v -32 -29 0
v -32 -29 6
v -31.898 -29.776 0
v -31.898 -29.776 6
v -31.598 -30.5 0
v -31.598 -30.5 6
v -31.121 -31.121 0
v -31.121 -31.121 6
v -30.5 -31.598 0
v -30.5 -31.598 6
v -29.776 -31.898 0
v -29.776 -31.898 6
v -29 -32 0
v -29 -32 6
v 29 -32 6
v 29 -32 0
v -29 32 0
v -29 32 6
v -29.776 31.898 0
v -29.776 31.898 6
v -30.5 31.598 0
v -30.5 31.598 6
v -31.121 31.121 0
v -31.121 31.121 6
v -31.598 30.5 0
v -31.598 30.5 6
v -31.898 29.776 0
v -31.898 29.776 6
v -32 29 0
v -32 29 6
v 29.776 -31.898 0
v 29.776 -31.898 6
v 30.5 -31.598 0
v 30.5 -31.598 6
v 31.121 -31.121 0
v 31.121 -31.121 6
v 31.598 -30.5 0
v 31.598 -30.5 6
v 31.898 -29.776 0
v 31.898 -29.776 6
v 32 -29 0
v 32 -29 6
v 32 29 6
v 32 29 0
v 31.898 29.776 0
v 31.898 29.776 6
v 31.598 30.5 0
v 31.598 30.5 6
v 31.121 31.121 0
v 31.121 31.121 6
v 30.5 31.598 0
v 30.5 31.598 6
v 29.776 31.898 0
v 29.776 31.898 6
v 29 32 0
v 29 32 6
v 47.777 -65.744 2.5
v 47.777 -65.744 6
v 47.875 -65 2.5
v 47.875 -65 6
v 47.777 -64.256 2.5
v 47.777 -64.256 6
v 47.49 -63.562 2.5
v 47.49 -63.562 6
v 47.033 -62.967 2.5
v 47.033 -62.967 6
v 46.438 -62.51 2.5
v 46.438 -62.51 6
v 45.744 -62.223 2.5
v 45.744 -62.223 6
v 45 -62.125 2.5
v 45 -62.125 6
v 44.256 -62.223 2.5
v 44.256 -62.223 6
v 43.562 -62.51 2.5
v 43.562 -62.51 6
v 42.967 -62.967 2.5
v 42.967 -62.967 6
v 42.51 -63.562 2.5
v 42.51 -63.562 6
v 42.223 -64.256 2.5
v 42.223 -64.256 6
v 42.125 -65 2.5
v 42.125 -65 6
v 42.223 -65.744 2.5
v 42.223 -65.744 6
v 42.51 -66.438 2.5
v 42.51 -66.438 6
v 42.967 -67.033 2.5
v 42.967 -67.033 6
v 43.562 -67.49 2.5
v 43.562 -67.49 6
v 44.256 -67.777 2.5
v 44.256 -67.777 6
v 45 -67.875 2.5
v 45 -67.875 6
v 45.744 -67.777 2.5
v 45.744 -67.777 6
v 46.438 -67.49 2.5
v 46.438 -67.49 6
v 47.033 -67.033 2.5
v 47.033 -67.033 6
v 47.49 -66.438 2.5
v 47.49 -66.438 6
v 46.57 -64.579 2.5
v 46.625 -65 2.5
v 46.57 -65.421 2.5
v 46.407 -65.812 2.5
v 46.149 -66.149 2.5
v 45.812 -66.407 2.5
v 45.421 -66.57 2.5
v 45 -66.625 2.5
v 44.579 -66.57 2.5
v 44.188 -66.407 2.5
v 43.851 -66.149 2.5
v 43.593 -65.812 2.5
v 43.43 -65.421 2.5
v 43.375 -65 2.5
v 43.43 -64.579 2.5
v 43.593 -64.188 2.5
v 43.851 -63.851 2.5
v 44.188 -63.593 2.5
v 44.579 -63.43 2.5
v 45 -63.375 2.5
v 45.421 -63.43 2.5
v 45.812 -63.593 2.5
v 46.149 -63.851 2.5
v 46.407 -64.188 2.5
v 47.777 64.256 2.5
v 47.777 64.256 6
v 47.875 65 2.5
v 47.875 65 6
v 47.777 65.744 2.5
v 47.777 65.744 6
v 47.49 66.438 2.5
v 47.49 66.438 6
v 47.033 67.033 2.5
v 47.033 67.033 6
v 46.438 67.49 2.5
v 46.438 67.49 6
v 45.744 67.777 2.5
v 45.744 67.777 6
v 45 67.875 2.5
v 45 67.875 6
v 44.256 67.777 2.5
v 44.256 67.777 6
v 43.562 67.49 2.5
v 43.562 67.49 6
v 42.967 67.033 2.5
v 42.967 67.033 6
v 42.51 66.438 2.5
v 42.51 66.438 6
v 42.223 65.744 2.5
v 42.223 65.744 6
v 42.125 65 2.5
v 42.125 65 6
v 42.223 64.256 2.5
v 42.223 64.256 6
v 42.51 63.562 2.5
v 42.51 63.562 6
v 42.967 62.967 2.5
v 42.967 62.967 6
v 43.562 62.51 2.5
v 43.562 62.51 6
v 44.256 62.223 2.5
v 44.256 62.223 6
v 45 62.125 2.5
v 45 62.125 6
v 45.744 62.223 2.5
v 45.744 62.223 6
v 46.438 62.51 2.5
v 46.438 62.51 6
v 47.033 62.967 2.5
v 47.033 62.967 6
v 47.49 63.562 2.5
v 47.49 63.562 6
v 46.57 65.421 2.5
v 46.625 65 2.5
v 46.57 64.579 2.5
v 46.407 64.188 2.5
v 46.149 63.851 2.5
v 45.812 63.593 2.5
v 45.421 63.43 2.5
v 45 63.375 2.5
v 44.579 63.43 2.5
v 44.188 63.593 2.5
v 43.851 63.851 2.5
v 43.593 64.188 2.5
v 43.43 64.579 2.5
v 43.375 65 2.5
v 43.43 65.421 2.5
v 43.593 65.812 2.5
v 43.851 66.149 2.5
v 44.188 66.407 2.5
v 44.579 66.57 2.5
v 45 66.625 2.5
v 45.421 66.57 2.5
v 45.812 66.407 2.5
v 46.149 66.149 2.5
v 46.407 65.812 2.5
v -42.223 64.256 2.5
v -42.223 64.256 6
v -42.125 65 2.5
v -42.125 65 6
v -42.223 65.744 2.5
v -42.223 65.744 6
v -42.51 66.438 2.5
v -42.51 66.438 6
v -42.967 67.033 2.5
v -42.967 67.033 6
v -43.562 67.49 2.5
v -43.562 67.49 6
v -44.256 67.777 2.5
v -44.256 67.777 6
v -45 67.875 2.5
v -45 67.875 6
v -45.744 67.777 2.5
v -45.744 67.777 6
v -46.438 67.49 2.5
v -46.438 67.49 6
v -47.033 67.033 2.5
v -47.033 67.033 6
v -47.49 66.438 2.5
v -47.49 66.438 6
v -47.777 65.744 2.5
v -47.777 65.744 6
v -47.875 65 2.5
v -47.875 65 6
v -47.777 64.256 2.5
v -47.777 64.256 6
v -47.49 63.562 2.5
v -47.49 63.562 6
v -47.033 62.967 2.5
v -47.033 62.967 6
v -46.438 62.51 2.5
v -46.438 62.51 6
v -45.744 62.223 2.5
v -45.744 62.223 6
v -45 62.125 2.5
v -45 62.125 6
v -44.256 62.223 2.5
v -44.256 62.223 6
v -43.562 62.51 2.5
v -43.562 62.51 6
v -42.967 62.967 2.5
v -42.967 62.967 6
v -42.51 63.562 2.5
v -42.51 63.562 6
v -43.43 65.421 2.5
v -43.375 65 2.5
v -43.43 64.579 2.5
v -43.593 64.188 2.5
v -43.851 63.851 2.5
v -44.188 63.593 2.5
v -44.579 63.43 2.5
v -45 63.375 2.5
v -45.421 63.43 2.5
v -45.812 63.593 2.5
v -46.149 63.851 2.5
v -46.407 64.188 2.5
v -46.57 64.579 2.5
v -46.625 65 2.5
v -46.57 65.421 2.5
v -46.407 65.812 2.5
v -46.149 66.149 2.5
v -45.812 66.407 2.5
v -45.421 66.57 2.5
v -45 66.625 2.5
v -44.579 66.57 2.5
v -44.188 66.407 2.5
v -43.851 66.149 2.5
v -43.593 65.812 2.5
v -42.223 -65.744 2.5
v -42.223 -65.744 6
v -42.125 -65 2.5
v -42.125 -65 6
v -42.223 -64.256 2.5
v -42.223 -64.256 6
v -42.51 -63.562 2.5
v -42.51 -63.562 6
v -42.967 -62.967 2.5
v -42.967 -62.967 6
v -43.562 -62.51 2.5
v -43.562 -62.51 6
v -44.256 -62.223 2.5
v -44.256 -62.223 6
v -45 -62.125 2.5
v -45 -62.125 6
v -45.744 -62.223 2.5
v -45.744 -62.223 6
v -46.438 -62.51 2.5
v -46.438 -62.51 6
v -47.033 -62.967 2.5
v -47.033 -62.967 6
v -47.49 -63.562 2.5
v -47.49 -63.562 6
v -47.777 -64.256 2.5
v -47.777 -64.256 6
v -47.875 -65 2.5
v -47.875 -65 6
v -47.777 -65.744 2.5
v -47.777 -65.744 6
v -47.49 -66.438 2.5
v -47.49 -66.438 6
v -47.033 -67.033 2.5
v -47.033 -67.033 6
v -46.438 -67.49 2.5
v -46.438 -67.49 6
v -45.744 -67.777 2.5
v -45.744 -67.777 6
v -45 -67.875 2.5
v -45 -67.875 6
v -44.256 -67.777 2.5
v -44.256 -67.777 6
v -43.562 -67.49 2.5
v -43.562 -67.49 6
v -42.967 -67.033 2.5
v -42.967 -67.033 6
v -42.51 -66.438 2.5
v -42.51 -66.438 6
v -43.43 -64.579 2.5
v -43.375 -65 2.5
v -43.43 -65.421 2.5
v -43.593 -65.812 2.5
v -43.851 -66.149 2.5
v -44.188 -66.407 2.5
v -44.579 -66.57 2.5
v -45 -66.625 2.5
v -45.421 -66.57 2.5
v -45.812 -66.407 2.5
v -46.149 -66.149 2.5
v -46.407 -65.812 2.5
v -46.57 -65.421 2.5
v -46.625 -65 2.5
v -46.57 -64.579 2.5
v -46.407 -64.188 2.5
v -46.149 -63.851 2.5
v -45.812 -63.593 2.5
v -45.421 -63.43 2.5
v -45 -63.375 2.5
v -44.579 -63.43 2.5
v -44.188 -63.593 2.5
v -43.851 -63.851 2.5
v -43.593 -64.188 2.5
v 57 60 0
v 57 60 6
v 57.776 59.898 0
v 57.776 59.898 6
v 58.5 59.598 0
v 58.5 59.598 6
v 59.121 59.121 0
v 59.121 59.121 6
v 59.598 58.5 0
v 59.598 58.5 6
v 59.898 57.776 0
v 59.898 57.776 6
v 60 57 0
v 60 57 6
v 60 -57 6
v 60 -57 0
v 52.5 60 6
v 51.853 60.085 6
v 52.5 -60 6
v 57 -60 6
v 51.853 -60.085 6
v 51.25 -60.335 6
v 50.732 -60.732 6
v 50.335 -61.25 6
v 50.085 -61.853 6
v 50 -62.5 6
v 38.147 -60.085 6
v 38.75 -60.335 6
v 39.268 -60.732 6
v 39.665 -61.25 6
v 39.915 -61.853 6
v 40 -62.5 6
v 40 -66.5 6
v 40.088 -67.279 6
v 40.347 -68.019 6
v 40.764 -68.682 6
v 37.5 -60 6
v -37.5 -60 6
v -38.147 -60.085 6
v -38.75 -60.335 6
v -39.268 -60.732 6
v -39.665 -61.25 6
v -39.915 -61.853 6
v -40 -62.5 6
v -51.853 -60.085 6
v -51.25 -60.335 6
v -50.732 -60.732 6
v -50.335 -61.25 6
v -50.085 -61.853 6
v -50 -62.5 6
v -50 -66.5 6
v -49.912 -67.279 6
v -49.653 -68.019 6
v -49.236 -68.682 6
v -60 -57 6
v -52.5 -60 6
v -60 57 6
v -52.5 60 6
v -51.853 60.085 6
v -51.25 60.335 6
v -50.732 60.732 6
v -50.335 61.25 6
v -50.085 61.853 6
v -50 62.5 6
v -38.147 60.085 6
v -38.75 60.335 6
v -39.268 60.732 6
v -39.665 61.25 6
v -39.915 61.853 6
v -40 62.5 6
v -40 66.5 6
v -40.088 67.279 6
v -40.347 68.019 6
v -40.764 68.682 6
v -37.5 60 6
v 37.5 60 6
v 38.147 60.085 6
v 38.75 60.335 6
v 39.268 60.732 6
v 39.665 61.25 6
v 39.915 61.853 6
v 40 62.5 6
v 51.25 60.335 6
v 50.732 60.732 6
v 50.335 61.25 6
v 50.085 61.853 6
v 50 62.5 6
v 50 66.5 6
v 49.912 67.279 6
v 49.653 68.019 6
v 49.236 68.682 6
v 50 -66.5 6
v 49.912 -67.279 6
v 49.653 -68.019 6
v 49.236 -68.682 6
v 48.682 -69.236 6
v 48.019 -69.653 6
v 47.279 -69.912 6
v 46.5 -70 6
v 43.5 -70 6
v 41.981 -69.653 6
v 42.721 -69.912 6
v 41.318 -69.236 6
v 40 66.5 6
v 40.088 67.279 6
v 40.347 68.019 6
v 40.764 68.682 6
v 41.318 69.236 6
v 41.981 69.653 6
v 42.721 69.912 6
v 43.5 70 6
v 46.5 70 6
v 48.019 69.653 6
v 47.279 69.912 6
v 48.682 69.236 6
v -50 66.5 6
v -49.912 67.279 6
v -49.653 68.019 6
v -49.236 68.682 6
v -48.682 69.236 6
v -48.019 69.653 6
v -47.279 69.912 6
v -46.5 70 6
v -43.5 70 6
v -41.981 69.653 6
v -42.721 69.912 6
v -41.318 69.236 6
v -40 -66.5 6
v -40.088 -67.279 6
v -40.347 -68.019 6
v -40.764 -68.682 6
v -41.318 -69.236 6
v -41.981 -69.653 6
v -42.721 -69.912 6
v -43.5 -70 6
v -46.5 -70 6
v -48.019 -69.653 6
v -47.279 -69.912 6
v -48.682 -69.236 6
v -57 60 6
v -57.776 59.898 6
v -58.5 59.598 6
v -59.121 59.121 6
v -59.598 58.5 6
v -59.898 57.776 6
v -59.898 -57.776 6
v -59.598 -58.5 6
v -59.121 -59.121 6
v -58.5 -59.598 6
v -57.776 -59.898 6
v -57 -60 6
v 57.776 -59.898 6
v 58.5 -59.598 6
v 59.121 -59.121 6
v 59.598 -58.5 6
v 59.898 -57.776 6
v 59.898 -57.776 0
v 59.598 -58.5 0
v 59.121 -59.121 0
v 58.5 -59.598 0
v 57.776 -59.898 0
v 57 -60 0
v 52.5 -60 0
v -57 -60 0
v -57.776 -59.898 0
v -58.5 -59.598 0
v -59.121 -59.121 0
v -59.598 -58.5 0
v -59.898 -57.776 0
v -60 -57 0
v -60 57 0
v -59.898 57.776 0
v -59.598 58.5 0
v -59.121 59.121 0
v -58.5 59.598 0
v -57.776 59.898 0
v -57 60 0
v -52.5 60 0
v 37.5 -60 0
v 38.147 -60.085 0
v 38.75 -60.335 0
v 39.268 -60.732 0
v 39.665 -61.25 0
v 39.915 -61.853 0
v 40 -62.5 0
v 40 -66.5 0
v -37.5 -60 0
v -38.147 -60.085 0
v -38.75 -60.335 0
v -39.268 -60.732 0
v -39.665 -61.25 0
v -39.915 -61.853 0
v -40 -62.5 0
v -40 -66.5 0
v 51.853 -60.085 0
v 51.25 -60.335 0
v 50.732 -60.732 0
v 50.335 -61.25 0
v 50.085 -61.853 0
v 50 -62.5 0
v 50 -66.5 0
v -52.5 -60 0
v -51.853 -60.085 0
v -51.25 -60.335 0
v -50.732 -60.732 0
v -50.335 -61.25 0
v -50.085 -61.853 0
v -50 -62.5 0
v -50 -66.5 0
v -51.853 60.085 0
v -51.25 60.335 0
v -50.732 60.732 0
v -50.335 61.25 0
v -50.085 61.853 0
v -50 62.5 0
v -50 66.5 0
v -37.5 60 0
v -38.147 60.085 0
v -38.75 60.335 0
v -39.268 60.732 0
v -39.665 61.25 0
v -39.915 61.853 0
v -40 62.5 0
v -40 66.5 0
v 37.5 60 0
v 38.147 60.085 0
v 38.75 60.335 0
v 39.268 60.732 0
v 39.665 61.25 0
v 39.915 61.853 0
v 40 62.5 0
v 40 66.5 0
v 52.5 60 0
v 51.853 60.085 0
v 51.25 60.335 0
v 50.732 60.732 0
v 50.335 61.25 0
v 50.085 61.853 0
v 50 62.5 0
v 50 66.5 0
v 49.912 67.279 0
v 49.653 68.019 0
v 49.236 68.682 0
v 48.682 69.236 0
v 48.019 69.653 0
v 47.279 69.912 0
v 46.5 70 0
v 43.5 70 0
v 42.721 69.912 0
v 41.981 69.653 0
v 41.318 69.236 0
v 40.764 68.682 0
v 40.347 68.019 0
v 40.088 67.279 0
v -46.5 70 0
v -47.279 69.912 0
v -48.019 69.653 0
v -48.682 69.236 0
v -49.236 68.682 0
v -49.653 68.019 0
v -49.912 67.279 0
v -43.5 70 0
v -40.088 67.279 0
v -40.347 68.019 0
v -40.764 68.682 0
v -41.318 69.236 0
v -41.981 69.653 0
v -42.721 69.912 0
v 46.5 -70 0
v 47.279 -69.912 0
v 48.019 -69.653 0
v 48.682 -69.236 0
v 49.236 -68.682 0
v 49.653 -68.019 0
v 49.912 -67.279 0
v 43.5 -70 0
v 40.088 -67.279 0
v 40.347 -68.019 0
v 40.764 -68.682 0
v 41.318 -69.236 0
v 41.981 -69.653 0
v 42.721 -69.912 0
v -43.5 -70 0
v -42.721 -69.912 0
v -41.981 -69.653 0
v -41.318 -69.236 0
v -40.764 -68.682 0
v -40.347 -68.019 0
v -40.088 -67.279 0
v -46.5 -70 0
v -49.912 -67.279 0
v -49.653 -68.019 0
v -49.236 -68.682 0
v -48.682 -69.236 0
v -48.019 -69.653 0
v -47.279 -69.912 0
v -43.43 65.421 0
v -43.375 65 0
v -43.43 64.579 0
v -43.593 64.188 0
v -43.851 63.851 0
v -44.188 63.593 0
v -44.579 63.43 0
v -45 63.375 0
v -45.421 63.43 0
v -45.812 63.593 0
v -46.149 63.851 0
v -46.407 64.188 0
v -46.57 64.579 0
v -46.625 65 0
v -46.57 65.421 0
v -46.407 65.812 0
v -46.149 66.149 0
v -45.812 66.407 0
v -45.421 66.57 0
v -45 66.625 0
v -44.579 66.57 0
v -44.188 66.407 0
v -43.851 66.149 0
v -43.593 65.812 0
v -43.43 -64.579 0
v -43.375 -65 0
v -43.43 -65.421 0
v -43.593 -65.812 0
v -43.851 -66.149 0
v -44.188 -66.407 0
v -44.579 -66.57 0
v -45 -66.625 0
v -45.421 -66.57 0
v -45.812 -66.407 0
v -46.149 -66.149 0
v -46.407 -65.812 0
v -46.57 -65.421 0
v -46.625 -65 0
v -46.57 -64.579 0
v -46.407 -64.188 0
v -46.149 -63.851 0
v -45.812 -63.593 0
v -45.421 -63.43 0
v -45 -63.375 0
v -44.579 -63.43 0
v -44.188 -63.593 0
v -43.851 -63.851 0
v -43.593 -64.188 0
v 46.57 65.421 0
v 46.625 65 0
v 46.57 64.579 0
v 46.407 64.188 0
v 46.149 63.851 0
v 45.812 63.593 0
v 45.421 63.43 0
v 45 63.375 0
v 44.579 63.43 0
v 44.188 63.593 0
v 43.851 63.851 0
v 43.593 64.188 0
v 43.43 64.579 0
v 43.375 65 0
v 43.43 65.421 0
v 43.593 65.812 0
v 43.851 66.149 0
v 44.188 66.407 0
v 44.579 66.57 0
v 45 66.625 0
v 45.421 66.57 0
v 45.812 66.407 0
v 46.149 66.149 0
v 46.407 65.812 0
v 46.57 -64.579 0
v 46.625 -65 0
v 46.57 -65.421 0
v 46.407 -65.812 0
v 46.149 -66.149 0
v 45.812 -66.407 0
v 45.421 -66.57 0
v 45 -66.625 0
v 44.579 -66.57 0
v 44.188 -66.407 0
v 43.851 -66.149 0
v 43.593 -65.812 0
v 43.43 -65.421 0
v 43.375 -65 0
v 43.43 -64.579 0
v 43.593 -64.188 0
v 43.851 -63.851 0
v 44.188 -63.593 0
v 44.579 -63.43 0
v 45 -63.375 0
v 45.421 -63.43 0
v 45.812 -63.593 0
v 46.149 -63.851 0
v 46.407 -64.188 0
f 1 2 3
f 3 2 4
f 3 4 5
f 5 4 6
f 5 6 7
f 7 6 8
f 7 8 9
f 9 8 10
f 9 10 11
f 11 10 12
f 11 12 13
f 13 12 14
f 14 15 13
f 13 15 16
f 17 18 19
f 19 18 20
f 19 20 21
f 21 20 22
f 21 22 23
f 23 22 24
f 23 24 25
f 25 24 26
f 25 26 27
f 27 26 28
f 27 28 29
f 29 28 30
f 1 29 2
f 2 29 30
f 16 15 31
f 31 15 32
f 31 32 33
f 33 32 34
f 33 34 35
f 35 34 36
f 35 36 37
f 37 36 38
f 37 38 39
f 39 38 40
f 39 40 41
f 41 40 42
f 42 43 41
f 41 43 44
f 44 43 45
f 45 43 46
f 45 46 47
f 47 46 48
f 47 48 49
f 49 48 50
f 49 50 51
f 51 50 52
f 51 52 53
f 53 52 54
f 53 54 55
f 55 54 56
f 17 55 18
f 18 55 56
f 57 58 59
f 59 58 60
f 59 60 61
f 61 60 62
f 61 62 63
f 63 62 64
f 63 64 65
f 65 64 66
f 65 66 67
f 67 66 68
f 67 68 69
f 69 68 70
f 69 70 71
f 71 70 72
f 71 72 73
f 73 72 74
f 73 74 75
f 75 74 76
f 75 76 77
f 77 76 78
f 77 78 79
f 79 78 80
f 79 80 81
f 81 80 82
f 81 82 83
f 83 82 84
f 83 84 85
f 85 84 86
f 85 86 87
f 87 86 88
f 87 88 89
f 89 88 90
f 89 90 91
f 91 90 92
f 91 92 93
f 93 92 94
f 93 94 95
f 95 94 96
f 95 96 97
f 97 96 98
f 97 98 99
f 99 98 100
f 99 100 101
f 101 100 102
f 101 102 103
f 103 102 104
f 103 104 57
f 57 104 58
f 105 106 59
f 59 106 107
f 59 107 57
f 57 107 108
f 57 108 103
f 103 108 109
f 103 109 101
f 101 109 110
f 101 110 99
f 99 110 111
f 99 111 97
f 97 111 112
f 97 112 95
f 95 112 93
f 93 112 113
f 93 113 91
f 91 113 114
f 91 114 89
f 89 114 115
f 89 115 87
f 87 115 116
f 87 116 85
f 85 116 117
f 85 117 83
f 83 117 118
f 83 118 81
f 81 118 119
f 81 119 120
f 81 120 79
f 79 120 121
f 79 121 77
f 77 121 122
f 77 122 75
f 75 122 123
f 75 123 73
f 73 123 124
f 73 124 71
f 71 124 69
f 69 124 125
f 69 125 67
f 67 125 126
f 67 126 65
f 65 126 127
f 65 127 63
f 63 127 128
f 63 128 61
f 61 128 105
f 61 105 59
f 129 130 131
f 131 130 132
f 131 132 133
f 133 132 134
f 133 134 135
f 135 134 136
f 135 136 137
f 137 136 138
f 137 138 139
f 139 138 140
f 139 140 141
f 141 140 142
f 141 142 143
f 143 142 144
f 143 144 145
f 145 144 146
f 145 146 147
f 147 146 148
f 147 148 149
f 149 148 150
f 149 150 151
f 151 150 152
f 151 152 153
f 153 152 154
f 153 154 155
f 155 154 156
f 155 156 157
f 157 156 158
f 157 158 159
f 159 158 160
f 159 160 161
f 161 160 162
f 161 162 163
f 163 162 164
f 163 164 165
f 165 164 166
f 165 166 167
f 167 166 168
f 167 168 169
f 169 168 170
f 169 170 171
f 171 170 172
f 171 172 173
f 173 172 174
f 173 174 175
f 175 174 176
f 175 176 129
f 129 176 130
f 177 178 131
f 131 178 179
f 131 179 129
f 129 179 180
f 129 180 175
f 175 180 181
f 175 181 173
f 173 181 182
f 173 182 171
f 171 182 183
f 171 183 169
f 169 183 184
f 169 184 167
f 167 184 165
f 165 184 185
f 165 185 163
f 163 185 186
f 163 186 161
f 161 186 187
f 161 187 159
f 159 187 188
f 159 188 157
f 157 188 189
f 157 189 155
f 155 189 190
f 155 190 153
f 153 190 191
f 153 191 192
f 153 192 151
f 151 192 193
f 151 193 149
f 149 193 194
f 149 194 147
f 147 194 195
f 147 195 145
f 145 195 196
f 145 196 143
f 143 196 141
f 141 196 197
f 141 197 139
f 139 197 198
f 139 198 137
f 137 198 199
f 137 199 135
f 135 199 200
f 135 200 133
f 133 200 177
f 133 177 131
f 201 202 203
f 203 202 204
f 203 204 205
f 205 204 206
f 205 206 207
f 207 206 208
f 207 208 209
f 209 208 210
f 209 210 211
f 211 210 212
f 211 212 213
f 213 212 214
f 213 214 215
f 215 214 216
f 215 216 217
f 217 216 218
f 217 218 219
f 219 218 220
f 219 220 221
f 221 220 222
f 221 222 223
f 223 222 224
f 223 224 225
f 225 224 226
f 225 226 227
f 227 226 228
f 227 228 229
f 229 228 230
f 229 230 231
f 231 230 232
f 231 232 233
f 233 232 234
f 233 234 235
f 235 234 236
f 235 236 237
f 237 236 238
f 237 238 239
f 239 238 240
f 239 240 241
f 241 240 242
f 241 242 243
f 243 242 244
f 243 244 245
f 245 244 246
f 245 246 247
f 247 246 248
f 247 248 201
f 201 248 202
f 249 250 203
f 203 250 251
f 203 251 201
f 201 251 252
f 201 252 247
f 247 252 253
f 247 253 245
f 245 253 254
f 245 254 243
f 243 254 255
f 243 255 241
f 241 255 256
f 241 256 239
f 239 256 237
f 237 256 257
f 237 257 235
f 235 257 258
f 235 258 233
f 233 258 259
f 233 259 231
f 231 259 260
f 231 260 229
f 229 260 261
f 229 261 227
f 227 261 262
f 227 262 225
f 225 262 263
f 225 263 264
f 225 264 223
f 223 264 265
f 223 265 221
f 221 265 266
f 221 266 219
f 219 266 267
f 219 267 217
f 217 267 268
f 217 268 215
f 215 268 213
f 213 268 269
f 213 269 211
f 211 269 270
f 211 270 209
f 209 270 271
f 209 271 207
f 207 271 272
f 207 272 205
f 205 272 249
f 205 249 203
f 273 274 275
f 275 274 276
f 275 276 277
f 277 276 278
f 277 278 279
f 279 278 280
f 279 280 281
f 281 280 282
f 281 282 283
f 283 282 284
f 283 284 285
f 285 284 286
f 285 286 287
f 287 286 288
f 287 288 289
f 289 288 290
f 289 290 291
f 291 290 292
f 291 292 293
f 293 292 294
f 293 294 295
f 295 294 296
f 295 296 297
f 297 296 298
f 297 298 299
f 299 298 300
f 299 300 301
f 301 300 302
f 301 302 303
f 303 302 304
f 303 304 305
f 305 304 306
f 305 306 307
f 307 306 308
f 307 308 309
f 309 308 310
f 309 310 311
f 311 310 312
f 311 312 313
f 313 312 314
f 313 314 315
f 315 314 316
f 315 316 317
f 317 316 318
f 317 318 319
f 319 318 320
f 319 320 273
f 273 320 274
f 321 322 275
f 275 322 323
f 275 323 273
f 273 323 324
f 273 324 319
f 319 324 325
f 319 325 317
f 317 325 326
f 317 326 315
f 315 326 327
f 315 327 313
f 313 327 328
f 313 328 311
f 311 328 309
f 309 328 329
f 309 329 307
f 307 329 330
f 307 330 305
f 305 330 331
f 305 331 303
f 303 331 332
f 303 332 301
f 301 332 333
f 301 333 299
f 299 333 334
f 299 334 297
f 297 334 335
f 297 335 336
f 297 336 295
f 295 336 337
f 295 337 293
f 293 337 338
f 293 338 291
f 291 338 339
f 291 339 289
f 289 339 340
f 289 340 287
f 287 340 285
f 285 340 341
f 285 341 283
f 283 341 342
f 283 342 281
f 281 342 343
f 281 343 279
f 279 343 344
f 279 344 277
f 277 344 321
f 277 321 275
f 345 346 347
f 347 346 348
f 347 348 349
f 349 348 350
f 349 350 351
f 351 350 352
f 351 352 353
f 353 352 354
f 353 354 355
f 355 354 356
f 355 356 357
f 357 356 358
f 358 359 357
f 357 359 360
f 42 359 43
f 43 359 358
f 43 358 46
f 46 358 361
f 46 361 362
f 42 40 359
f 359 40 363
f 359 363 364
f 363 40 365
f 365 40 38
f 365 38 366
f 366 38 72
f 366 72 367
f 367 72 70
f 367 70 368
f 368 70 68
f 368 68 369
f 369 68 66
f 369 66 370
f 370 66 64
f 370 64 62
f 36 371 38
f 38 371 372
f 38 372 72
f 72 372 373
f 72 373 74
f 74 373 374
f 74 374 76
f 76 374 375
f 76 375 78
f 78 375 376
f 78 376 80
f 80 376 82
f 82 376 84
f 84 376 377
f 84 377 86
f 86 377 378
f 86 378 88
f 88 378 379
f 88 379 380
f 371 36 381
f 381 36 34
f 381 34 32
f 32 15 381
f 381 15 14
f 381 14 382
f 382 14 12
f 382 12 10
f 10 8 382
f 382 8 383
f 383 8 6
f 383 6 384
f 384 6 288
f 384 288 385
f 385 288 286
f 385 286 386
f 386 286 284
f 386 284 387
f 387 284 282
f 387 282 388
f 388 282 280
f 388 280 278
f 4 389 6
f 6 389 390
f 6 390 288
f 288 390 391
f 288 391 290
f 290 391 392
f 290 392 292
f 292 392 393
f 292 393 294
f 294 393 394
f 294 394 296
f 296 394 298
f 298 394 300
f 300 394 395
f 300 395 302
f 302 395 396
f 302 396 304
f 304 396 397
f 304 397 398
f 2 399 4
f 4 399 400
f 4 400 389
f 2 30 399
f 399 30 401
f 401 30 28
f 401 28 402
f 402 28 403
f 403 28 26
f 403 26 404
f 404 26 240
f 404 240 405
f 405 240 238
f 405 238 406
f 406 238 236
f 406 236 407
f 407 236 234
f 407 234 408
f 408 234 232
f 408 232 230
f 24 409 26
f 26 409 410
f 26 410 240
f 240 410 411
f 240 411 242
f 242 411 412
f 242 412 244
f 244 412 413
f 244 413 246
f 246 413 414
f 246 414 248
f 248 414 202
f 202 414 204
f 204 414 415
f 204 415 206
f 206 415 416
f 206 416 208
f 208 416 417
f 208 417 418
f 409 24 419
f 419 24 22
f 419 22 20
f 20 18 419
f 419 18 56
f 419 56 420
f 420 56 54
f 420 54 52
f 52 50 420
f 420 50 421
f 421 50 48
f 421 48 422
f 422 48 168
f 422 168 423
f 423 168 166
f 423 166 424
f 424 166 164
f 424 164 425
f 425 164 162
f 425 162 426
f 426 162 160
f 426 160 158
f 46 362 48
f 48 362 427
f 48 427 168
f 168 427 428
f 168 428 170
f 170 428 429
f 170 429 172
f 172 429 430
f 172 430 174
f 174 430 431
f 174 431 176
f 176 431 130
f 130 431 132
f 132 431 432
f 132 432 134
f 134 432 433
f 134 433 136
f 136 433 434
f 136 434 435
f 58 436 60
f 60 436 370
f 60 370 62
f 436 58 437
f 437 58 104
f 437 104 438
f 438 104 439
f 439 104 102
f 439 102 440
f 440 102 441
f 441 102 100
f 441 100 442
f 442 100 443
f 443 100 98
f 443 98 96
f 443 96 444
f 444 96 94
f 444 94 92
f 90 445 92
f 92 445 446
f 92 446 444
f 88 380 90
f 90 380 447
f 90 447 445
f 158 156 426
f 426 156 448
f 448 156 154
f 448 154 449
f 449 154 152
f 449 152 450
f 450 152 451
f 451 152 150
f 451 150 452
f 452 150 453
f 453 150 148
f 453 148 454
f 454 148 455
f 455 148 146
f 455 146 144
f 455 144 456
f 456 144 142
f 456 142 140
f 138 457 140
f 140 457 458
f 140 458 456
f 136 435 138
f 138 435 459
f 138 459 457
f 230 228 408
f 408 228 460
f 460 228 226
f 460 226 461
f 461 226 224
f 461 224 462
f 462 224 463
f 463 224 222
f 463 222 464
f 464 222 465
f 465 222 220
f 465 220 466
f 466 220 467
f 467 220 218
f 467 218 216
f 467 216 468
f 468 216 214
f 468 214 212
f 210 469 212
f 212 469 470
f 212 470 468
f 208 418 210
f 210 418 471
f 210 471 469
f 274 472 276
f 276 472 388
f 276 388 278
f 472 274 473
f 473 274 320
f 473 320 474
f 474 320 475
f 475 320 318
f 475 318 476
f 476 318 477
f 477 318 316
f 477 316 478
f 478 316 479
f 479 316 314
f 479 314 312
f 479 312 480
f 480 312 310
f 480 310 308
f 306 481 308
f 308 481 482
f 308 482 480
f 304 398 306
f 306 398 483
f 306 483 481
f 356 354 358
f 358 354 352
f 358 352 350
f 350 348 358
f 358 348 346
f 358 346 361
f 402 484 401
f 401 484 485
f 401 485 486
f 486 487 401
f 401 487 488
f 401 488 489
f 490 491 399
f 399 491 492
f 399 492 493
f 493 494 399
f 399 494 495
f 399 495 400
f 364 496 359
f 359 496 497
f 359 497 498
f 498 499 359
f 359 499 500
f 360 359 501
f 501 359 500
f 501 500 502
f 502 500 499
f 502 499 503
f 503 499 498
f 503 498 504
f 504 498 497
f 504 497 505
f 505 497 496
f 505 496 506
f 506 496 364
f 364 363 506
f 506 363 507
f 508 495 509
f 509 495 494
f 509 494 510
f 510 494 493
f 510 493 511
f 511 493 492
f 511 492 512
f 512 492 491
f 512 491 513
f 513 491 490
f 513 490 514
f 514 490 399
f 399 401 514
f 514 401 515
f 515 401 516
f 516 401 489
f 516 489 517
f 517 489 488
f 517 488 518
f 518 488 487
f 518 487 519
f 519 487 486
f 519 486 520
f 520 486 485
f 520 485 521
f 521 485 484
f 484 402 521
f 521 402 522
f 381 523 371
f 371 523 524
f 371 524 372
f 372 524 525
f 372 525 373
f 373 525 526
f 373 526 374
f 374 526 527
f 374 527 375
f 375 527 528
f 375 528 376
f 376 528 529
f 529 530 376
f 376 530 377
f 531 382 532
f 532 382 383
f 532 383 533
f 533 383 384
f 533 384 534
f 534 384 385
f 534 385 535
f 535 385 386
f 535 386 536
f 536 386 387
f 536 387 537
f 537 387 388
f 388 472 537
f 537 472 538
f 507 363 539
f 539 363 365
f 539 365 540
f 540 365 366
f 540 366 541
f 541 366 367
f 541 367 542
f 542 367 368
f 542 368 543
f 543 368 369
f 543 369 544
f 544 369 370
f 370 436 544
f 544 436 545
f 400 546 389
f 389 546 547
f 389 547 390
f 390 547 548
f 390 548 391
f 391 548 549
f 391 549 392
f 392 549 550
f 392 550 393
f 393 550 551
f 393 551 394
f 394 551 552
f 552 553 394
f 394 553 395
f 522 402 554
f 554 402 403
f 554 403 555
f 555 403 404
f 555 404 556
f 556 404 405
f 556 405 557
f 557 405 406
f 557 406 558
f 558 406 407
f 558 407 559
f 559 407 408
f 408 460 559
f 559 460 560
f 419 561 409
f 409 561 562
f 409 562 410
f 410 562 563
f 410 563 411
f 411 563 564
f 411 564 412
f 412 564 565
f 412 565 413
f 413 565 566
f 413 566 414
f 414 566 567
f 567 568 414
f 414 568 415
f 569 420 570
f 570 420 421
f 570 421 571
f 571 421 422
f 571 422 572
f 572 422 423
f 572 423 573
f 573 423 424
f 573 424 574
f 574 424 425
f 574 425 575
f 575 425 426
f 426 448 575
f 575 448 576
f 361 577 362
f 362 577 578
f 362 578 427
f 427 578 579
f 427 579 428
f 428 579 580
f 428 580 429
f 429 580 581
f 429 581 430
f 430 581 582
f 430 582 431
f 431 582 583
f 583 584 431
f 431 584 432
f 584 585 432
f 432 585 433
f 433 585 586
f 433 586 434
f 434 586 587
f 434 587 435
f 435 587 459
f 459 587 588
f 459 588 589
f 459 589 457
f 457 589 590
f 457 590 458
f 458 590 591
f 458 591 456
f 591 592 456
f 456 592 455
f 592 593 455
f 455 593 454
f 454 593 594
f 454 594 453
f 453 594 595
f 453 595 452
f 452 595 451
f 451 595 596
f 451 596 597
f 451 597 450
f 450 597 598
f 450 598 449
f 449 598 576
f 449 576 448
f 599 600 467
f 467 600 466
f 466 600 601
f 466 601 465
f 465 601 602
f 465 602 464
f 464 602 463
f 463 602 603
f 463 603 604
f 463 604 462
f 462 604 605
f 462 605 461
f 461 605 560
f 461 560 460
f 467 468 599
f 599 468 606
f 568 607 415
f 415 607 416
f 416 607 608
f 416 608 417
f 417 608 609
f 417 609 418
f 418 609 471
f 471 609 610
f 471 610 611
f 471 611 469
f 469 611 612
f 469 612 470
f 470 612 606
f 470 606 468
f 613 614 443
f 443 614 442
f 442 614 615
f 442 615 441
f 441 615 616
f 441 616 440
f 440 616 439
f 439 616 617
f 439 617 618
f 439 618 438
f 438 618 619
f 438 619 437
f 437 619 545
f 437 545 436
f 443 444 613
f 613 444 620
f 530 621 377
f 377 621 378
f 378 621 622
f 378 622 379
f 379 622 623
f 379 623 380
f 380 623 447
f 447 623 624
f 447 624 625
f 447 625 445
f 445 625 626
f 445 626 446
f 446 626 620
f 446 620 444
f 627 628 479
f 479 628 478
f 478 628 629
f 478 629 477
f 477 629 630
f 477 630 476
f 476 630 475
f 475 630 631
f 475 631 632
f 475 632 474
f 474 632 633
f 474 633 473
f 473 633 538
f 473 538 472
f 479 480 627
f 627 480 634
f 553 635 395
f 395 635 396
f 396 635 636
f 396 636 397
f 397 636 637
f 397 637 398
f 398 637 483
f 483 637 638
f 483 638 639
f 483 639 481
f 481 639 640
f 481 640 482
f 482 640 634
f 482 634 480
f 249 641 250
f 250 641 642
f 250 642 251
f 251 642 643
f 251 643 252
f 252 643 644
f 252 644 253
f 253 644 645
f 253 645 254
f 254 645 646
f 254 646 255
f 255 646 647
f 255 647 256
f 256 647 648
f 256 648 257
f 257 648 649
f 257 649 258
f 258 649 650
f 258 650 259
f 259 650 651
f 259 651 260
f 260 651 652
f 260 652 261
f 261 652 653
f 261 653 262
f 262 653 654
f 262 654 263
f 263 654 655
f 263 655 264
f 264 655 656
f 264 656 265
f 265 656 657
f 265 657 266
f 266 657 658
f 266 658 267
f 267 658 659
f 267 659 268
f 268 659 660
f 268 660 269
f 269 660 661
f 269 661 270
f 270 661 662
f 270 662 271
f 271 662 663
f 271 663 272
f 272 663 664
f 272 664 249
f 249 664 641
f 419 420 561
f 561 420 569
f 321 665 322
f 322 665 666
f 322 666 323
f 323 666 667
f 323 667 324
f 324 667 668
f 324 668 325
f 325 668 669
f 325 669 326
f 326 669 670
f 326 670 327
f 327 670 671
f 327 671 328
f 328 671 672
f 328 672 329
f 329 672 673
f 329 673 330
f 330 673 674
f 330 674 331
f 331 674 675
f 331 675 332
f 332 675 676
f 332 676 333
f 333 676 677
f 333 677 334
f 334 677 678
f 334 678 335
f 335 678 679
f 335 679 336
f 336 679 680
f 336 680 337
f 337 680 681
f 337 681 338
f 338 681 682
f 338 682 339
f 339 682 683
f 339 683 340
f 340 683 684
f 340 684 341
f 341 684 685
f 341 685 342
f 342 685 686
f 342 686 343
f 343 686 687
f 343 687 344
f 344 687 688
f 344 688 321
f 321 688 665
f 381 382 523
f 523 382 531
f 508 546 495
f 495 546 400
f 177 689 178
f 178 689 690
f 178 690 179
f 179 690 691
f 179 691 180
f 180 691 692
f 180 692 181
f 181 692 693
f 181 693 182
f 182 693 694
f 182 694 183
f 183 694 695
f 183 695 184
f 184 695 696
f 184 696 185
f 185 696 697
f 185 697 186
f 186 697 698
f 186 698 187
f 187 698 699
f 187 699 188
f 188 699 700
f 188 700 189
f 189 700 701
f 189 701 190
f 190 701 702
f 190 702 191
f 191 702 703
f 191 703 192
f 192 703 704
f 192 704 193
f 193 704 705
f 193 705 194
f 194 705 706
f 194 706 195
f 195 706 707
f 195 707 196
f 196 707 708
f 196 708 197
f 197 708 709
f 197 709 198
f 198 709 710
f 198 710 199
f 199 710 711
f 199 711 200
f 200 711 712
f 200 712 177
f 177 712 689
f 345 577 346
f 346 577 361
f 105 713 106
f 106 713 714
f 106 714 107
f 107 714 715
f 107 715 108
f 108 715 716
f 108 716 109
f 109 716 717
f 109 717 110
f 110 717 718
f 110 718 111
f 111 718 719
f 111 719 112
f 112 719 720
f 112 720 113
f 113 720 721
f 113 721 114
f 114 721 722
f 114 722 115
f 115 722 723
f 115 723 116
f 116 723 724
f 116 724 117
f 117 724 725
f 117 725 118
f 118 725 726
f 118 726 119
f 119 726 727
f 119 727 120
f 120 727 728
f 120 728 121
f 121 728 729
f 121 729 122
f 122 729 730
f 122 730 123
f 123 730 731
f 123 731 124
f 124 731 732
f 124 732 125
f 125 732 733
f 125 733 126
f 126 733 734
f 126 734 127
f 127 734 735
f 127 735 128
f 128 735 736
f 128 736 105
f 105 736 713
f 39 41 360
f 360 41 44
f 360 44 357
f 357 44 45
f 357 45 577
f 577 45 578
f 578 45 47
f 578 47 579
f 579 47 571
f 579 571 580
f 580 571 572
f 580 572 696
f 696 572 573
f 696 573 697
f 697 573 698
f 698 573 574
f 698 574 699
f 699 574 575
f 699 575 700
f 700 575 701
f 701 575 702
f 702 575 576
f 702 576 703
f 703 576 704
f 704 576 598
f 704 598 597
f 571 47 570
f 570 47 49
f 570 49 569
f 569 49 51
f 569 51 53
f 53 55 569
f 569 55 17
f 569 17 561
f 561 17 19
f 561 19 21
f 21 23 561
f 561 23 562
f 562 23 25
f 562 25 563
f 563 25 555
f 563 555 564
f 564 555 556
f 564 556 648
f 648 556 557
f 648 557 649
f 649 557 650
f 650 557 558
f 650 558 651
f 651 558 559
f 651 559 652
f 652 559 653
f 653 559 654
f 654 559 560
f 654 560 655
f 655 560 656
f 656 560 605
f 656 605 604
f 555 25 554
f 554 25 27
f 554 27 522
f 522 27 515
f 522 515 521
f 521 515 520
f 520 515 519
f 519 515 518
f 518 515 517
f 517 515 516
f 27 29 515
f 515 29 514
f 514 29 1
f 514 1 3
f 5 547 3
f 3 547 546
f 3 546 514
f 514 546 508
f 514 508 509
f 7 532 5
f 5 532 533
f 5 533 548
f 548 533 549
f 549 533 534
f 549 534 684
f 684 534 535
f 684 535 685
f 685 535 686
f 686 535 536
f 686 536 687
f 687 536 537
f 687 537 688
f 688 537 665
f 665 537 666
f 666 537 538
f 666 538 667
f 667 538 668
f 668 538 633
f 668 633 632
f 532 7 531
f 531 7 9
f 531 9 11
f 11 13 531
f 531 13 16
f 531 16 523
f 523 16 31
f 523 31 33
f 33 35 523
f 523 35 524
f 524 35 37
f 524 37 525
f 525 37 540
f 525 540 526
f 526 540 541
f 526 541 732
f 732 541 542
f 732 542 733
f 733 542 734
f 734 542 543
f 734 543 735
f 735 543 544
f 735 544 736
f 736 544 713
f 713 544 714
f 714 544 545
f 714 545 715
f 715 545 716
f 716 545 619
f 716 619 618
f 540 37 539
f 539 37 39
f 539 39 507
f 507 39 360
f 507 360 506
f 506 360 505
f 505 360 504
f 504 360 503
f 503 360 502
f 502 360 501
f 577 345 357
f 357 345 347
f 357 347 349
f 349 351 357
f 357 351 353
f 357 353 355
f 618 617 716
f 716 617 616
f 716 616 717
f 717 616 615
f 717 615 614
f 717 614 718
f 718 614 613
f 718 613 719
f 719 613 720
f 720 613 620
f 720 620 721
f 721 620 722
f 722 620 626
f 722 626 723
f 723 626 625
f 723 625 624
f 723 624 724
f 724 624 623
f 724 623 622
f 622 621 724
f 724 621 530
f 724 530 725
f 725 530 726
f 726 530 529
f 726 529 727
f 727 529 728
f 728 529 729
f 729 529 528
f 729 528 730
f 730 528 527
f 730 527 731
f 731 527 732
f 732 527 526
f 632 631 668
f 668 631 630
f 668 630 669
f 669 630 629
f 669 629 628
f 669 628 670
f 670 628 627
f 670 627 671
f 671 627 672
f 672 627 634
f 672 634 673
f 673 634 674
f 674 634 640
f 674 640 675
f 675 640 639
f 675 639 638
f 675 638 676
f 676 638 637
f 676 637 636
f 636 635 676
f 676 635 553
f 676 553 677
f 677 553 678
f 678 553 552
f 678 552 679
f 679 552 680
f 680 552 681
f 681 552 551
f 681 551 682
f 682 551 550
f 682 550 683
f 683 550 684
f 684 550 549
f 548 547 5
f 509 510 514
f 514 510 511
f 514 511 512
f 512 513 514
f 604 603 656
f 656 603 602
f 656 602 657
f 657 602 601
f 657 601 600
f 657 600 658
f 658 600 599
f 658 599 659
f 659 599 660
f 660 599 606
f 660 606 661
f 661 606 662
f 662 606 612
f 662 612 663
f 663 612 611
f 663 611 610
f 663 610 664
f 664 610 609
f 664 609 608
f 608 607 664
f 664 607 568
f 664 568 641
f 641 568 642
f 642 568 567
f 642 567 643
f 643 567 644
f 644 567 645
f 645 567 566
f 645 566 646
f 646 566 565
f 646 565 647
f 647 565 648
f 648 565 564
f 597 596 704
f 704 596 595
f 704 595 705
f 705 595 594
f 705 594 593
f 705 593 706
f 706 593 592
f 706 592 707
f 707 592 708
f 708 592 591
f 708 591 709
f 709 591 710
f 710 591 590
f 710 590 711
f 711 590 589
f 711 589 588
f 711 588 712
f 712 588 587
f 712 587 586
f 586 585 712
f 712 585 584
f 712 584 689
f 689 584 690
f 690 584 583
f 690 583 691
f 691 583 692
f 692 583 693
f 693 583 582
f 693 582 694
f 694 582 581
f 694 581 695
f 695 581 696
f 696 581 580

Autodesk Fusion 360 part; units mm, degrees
sketch "Sketch1" plane through (0, 0, 0) normal (0, 0, 1) x (1, 0, 0)
  line L0 (60, -60) -> (-60, -60)
  line L1 (-60, -60) -> (-60, 60)
  line L2 (-60, 60) -> (60, 60)
  line L3 (60, 60) -> (60, -60)
  line L4 (60, -60) -> (-60, 60) construction
  line L5 (-60, -60) -> (60, 60) construction
  dimension "d4" = 120
  dimension "d5" = 120
extrude "Extrude1" add sketch "Sketch1" along normal blind 6
sketch "Sketch6" plane through (0, 0, 6) normal (0, 0, 1) x (-1, 0, 0)
  line L0 (-60, -60) -> (60, -60)
  line L1 (60, -60) -> (60, 60)
  line L2 (60, 60) -> (-60, 60)
  line L3 (-60, 60) -> (-60, -60)
sketch "Sketch7" plane through (0, 0, 6) normal (0, 0, 1) x (-1, 0, 0)
  line L0 (-60, -60) -> (60, -60)
  line L1 (60, -60) -> (60, 60)
  line L2 (60, 60) -> (-60, 60)
  line L3 (-60, 60) -> (-60, -60)
  line L4 (50, 60) -> (40, 60)
  line L5 (40, 60) -> (40, 70)
  line L6 (40, 70) -> (50, 70)
  line L7 (50, 70) -> (50, 60)
  circle A0 centre (45, 65) radius 1.625
  line L8 (0, -80) -> (0, 80) construction
  line L9 (75, 0) -> (-75, 0) construction
  circle A1 centre (-45, 65) radius 1.625
  line L10 (-50, 60) -> (-40, 60)
  line L11 (-40, 70) -> (-50, 70)
  line L12 (-40, 60) -> (-40, 70)
  line L13 (-50, 70) -> (-50, 60)
  line L14 (40, -70) -> (50, -70)
  line L15 (0, 80) -> (0, -80) construction
  line L16 (-40, -70) -> (-50, -70)
  line L17 (50, -60) -> (40, -60)
  circle A2 centre (-45, -65) radius 1.625
  line L18 (40, -60) -> (40, -70)
  circle A3 centre (45, -65) radius 1.625
  line L19 (50, -70) -> (50, -60)
  line L20 (-40, -60) -> (-40, -70)
  line L21 (-50, -70) -> (-50, -60)
  dimension "d78" = 10
  dimension "d79" = 10
  dimension "d80" = 10
  dimension "d81" = 3.25
  dimension "d83" = 5
  dimension "d84" = 5
extrude "Extrude7" add sketch "Sketch7" against normal up to surface (6 mm away) contours L0 L16 L20 L21 | L2 L10 L11 L12 L13 | L0 L14 L17 L18 L19 | L2 L4 L5 L6 L7
fillet "Fillet1" radius 3.5 2 edges at (-50, -70, 3) (-40, -70, 3)
fillet "Fillet2" radius 3.5 2 edges at (40, -70, 3) (50, -70, 3)
fillet "Fillet3" radius 3.5 2 edges at (-40, 70, 3) (-50, 70, 3)
fillet "Fillet4" radius 3.5 2 edges at (40, 70, 3) (50, 70, 3)
fillet "Fillet5" radius 2.5 8 edges at (50, 60, 3) (40, 60, 3) (-40, 60, 3) (-50, 60, 3) (-50, -60, 3) (50, -60, 3) (-40, -60, 3) (40, -60, 3)
fillet "Fillet6" radius 3 4 edges at (-60, 60, 3) (-60, -60, 3) (60, -60, 3) (60, 60, 3)
sketch "Sketch8" plane through (0, 0, 6) normal (0, 0, 1) x (-1, 0, 0)
  circle A0 centre (45, -65) radius 1.625
  circle A1 centre (45, 65) radius 1.625
  circle A2 centre (-45, -65) radius 1.625
  circle A3 centre (-45, 65) radius 1.625
  arc A4 (-60, -57) -> (-57, -60) centre (-57, -57) ccw
  line L0 (-57, -60) -> (-52.5, -60)
  arc A5 (-50, -62.5) -> (-52.5, -60) centre (-52.5, -62.5) ccw
  line L1 (-50, -62.5) -> (-50, -66.5)
  arc A6 (-50, -66.5) -> (-46.5, -70) centre (-46.5, -66.5) ccw
  line L2 (-46.5, -70) -> (-43.5, -70)
  arc A7 (-43.5, -70) -> (-40, -66.5) centre (-43.5, -66.5) ccw
  line L3 (-40, -66.5) -> (-40, -62.5)
  arc A8 (-37.5, -60) -> (-40, -62.5) centre (-37.5, -62.5) ccw
  line L4 (-37.5, -60) -> (37.5, -60)
  arc A9 (40, -62.5) -> (37.5, -60) centre (37.5, -62.5) ccw
  line L5 (40, -62.5) -> (40, -66.5)
  arc A10 (40, -66.5) -> (43.5, -70) centre (43.5, -66.5) ccw
  line L6 (43.5, -70) -> (46.5, -70)
  arc A11 (46.5, -70) -> (50, -66.5) centre (46.5, -66.5) ccw
  line L7 (50, -66.5) -> (50, -62.5)
  arc A12 (52.5, -60) -> (50, -62.5) centre (52.5, -62.5) ccw
  line L8 (52.5, -60) -> (57, -60)
  arc A13 (57, -60) -> (60, -57) centre (57, -57) ccw
  line L9 (60, -57) -> (60, 57)
  arc A14 (60, 57) -> (57, 60) centre (57, 57) ccw
  line L10 (57, 60) -> (52.5, 60)
  arc A15 (50, 62.5) -> (52.5, 60) centre (52.5, 62.5) ccw
  line L11 (50, 62.5) -> (50, 66.5)
  arc A16 (50, 66.5) -> (46.5, 70) centre (46.5, 66.5) ccw
  line L12 (46.5, 70) -> (43.5, 70)
  arc A17 (43.5, 70) -> (40, 66.5) centre (43.5, 66.5) ccw
  line L13 (40, 66.5) -> (40, 62.5)
  arc A18 (37.5, 60) -> (40, 62.5) centre (37.5, 62.5) ccw
  line L14 (37.5, 60) -> (-37.5, 60)
  arc A19 (-40, 62.5) -> (-37.5, 60) centre (-37.5, 62.5) ccw
  line L15 (-40, 62.5) -> (-40, 66.5)
  arc A20 (-40, 66.5) -> (-43.5, 70) centre (-43.5, 66.5) ccw
  line L16 (-43.5, 70) -> (-46.5, 70)
  arc A21 (-46.5, 70) -> (-50, 66.5) centre (-46.5, 66.5) ccw
  line L17 (-50, 66.5) -> (-50, 62.5)
  arc A22 (-52.5, 60) -> (-50, 62.5) centre (-52.5, 62.5) ccw
  line L18 (-52.5, 60) -> (-57, 60)
  arc A23 (-57, 60) -> (-60, 57) centre (-57, 57) ccw
  line L19 (-60, 57) -> (-60, -57)
  circle A24 centre (45, 65) radius 2.875
  dimension "d98" = 5.75
extrude "Extrude8" cut sketch "Sketch8" against normal blind 3.5 contours A24
sketch "Sketch9" plane through (0, 0, 6) normal (0, 0, 1) x (-1, 0, 0)
  circle A0 centre (45, 65) radius 2.875
  circle A1 centre (45, -65) radius 1.625
  circle A2 centre (-45, -65) radius 1.625
  circle A3 centre (-45, 65) radius 1.625
  arc A4 (-60, -57) -> (-57, -60) centre (-57, -57) ccw
  line L0 (-57, -60) -> (-52.5, -60)
  arc A5 (-50, -62.5) -> (-52.5, -60) centre (-52.5, -62.5) ccw
  line L1 (-50, -62.5) -> (-50, -66.5)
  arc A6 (-50, -66.5) -> (-46.5, -70) centre (-46.5, -66.5) ccw
  line L2 (-46.5, -70) -> (-43.5, -70)
  arc A7 (-43.5, -70) -> (-40, -66.5) centre (-43.5, -66.5) ccw
  line L3 (-40, -66.5) -> (-40, -62.5)
  arc A8 (-37.5, -60) -> (-40, -62.5) centre (-37.5, -62.5) ccw
  line L4 (-37.5, -60) -> (37.5, -60)
  arc A9 (40, -62.5) -> (37.5, -60) centre (37.5, -62.5) ccw
  line L5 (40, -62.5) -> (40, -66.5)
  arc A10 (40, -66.5) -> (43.5, -70) centre (43.5, -66.5) ccw
  line L6 (43.5, -70) -> (46.5, -70)
  arc A11 (46.5, -70) -> (50, -66.5) centre (46.5, -66.5) ccw
  line L7 (50, -66.5) -> (50, -62.5)
  arc A12 (52.5, -60) -> (50, -62.5) centre (52.5, -62.5) ccw
  line L8 (52.5, -60) -> (57, -60)
  arc A13 (57, -60) -> (60, -57) centre (57, -57) ccw
  line L9 (60, -57) -> (60, 57)
  arc A14 (60, 57) -> (57, 60) centre (57, 57) ccw
  line L10 (57, 60) -> (52.5, 60)
  arc A15 (50, 62.5) -> (52.5, 60) centre (52.5, 62.5) ccw
  line L11 (50, 62.5) -> (50, 66.5)
  arc A16 (50, 66.5) -> (46.5, 70) centre (46.5, 66.5) ccw
  line L12 (46.5, 70) -> (43.5, 70)
  arc A17 (43.5, 70) -> (40, 66.5) centre (43.5, 66.5) ccw
  line L13 (40, 66.5) -> (40, 62.5)
  arc A18 (37.5, 60) -> (40, 62.5) centre (37.5, 62.5) ccw
  line L14 (37.5, 60) -> (-37.5, 60)
  arc A19 (-40, 62.5) -> (-37.5, 60) centre (-37.5, 62.5) ccw
  line L15 (-40, 62.5) -> (-40, 66.5)
  arc A20 (-40, 66.5) -> (-43.5, 70) centre (-43.5, 66.5) ccw
  line L16 (-43.5, 70) -> (-46.5, 70)
  arc A21 (-46.5, 70) -> (-50, 66.5) centre (-46.5, 66.5) ccw
  line L17 (-50, 66.5) -> (-50, 62.5)
  arc A22 (-52.5, 60) -> (-50, 62.5) centre (-52.5, 62.5) ccw
  line L18 (-52.5, 60) -> (-57, 60)
  arc A23 (-57, 60) -> (-60, 57) centre (-57, 57) ccw
  line L19 (-60, 57) -> (-60, -57)
  circle A24 centre (-45, 65) radius 2.875
  circle A25 centre (-45, -65) radius 2.875
  circle A26 centre (45, -65) radius 2.875
  dimension "d101" = 5.75
  dimension "d102" = 5.75
  dimension "d103" = 5.75
extrude "Extrude9" cut sketch "Sketch9" against normal blind 3.5 contours A24 | A25 | A26
sketch "Sketch10" plane through (0, 0, 6) normal (0, 0, 1) x (-1, 0, 0)
  circle A0 centre (-45, 65) radius 2.875
  circle A1 centre (-45, -65) radius 2.875
  circle A2 centre (45, -65) radius 2.875
  circle A3 centre (45, 65) radius 2.875
  arc A4 (-60, -57) -> (-57, -60) centre (-57, -57) ccw
  line L0 (-57, -60) -> (-52.5, -60)
  arc A5 (-50, -62.5) -> (-52.5, -60) centre (-52.5, -62.5) ccw
  line L1 (-50, -62.5) -> (-50, -66.5)
  arc A6 (-50, -66.5) -> (-46.5, -70) centre (-46.5, -66.5) ccw
  line L2 (-46.5, -70) -> (-43.5, -70)
  arc A7 (-43.5, -70) -> (-40, -66.5) centre (-43.5, -66.5) ccw
  line L3 (-40, -66.5) -> (-40, -62.5)
  arc A8 (-37.5, -60) -> (-40, -62.5) centre (-37.5, -62.5) ccw
  line L4 (-37.5, -60) -> (37.5, -60)
  arc A9 (40, -62.5) -> (37.5, -60) centre (37.5, -62.5) ccw
  line L5 (40, -62.5) -> (40, -66.5)
  arc A10 (40, -66.5) -> (43.5, -70) centre (43.5, -66.5) ccw
  line L6 (43.5, -70) -> (46.5, -70)
  arc A11 (46.5, -70) -> (50, -66.5) centre (46.5, -66.5) ccw
  line L7 (50, -66.5) -> (50, -62.5)
  arc A12 (52.5, -60) -> (50, -62.5) centre (52.5, -62.5) ccw
  line L8 (52.5, -60) -> (57, -60)
  arc A13 (57, -60) -> (60, -57) centre (57, -57) ccw
  line L9 (60, -57) -> (60, 57)
  arc A14 (60, 57) -> (57, 60) centre (57, 57) ccw
  line L10 (57, 60) -> (52.5, 60)
  arc A15 (50, 62.5) -> (52.5, 60) centre (52.5, 62.5) ccw
  line L11 (50, 62.5) -> (50, 66.5)
  arc A16 (50, 66.5) -> (46.5, 70) centre (46.5, 66.5) ccw
  line L12 (46.5, 70) -> (43.5, 70)
  arc A17 (43.5, 70) -> (40, 66.5) centre (43.5, 66.5) ccw
  line L13 (40, 66.5) -> (40, 62.5)
  arc A18 (37.5, 60) -> (40, 62.5) centre (37.5, 62.5) ccw
  line L14 (37.5, 60) -> (-37.5, 60)
  arc A19 (-40, 62.5) -> (-37.5, 60) centre (-37.5, 62.5) ccw
  line L15 (-40, 62.5) -> (-40, 66.5)
  arc A20 (-40, 66.5) -> (-43.5, 70) centre (-43.5, 66.5) ccw
  line L16 (-43.5, 70) -> (-46.5, 70)
  arc A21 (-46.5, 70) -> (-50, 66.5) centre (-46.5, 66.5) ccw
  line L17 (-50, 66.5) -> (-50, 62.5)
  arc A22 (-52.5, 60) -> (-50, 62.5) centre (-52.5, 62.5) ccw
  line L18 (-52.5, 60) -> (-57, 60)
  arc A23 (-57, 60) -> (-60, 57) centre (-57, 57) ccw
  line L19 (-60, 57) -> (-60, -57)
  line L20 (-32, 32) -> (32, 32)
  line L21 (32, 32) -> (32, -32)
  line L22 (32, -32) -> (-32, -32)
  line L23 (-32, -32) -> (-32, 32)
  line L24 (-32, 32) -> (32, -32) construction
  line L25 (32, 32) -> (-32, -32) construction
  dimension "d108" = 64
  dimension "d109" = 64
extrude "Extrude10" cut sketch "Sketch10" against normal up to surface (6 mm away) contours L20 L21 L22 L23
fillet "Fillet7" radius 3 4 edges at (32, 32, 3) (32, -32, 3) (-32, 32, 3) (-32, -32, 3)
equation "base_width = 120 mm"
equation "base_length = 120 mm"
equation "base_thickness = 6 mm"
equation "d4 = base_width"
equation "d5 = base_length"
equation "d6 = base_thickness"
equation "fan_mount_hole_long_edge_offset = 18 mm"
equation "fan_bottom_mount_hole_head_countersink = 3.5 mm"
equation "fan_bottom_mount_hole_diameter = 3.25 mm"
equation "fan_bottom_mount_hole_head_diameter = 5.75 mm"
equation "fan_bottom_mount_hole_slot_length = 4 mm"
equation "fan_mount_hole_short_edge_offset = 12.5 mm"
equation "pi_mount_width = 65.7 mm"
equation "pi_mount_length = 100.7 mm"
equation "pi_bottom_mount_hole_diameter = 3.25 mm"
equation "pi_bottom_mount_hole_head_countersink = 3.5 mm"
equation "pi_bottom_mount_hole_head_diameter = 5.75 mm"
equation "pi_bottom_mount_hole_slot_length = 8 mm"
equation "switch_width = 100 mm"
equation "switch_length = 98.5 mm"
equation "switch_lateral_support_length = 10 mm"
equation "switch_lateral_support_offset = 0.4 mm"
equation "switch_lateral_support_thickness = 1 mm"
equation "switch_lateral_support_width = 2 mm"
equation "base_bracket_width = 10 mm"
equation "base_bracket_edge_offset = 10 mm"
equation "base_bracket_hole_diameter = 3.25 mm"
equation "base_bracket_length = 10 mm"
equation "base_bracket_hole_edge_offset = 5 mm"
equation "d78 = base_bracket_width"
equation "d79 = base_bracket_length"
equation "d80 = base_bracket_edge_offset"
equation "d81 = base_bracket_hole_diameter"
equation "base_bracket_length_edge_offset = 5 mm"
equation "d83 = base_bracket_length_edge_offset"
equation "d84 = base_bracket_width / 2"
equation "base_bracket_outer_fillet = 3.5 mm"
equation "base_bracket_inner_fillet = 2.5 mm"
equation "d89 = base_bracket_outer_fillet"
equation "d90 = base_bracket_outer_fillet"
equation "d91 = base_bracket_outer_fillet"
equation "d92 = base_bracket_outer_fillet"
equation "d93 = base_bracket_inner_fillet"
equation "base_edge_fillet = 3 mm"
equation "d95 = base_edge_fillet"
equation "base_bracket_bottom_mount_hole_head_countersink = 3.5 mm"
equation "base_bracket_bottom_mount_hole_head_diameter = 5.75 mm"
equation "d98 = base_bracket_bottom_mount_hole_head_diameter"
equation "d99 = -base_bracket_bottom_mount_hole_head_countersink"
equation "d101 = base_bracket_bottom_mount_hole_head_diameter"
equation "d102 = base_bracket_bottom_mount_hole_head_diameter"
equation "d103 = base_bracket_bottom_mount_hole_head_diameter"
equation "d104 = -base_bracket_bottom_mount_hole_head_countersink"
equation "internal_hole_width = 64 mm"
equation "internal_hole_length = 64 mm"
equation "d108 = internal_hole_width"
equation "d109 = internal_hole_length"
equation "internal_hole_fillet = 3 mm"
equation "d113 = internal_hole_fillet"
